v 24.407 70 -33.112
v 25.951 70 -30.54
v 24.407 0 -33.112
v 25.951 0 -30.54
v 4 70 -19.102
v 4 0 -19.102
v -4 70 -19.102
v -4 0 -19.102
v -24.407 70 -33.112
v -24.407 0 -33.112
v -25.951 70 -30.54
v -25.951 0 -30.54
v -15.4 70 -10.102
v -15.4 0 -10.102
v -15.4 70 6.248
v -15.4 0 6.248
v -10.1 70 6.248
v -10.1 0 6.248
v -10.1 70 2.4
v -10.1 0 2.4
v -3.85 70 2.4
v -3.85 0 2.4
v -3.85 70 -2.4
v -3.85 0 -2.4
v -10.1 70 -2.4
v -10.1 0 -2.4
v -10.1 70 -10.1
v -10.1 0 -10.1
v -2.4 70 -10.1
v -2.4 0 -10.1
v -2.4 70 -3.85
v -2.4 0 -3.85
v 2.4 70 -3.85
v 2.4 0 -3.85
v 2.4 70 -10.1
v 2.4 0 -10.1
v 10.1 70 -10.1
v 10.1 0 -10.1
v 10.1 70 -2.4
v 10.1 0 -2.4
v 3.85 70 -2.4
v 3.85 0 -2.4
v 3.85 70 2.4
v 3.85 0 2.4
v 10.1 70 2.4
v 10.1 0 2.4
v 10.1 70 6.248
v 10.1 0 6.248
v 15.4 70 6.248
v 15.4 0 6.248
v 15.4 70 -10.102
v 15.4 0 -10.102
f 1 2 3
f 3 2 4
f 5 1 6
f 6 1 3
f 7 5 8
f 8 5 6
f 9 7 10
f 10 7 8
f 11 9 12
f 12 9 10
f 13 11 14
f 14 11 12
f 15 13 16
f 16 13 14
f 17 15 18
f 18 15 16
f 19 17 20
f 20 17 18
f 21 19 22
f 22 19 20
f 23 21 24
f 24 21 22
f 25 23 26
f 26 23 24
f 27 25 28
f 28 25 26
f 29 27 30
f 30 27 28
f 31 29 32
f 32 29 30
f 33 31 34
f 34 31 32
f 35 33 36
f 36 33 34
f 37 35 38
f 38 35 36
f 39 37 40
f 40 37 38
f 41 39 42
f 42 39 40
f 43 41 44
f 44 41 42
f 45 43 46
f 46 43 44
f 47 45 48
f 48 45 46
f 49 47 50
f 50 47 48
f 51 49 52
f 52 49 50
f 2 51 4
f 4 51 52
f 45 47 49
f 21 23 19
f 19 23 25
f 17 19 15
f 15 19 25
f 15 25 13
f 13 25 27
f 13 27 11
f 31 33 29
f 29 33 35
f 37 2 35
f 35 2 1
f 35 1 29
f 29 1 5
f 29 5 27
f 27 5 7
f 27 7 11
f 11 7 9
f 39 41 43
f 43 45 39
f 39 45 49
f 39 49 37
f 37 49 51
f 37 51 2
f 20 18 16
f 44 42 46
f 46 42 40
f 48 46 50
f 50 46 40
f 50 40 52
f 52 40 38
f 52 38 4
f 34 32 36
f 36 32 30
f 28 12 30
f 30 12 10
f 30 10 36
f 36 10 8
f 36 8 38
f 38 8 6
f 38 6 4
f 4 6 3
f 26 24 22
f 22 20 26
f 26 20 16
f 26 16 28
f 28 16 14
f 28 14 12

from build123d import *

# Parameters (mm, degrees)
BOSS_EXTRU_2_DEPTH = 70


with BuildPart() as part:
    # Base → Boss.-Extru.2 (new body)
    with BuildSketch(Plane(origin=(0, 0, 0), x_dir=(1, 0, 0), z_dir=(0, 1, 0))):
        Polygon((-3.85, -2.4), (-3.85, 2.4), (-10.1, 2.4), (-10.1, 10.1), (-2.4, 10.1), (-2.4, 3.85), (2.4, 3.85), (2.4, 10.1), (10.1, 10.1), (10.1, 2.4), (3.85, 2.4), (3.85, -2.4), (10.1, -2.4), (10.1, -6.247725424), (15.4, -6.247725424), (15.4, 10.102274576), (25.950506613, 30.539662134), (24.407491309, 33.11242403), (4, 19.102274576), (-4, 19.102274576), (-24.407491309, 33.11242403), (-25.950506613, 30.539662134), (-15.4, 10.102274576), (-15.4, -6.247725424), (-10.1, -6.247725424), (-10.1, -2.4), align=None)
    extrude(amount=BOSS_EXTRU_2_DEPTH)


solid = part.part
